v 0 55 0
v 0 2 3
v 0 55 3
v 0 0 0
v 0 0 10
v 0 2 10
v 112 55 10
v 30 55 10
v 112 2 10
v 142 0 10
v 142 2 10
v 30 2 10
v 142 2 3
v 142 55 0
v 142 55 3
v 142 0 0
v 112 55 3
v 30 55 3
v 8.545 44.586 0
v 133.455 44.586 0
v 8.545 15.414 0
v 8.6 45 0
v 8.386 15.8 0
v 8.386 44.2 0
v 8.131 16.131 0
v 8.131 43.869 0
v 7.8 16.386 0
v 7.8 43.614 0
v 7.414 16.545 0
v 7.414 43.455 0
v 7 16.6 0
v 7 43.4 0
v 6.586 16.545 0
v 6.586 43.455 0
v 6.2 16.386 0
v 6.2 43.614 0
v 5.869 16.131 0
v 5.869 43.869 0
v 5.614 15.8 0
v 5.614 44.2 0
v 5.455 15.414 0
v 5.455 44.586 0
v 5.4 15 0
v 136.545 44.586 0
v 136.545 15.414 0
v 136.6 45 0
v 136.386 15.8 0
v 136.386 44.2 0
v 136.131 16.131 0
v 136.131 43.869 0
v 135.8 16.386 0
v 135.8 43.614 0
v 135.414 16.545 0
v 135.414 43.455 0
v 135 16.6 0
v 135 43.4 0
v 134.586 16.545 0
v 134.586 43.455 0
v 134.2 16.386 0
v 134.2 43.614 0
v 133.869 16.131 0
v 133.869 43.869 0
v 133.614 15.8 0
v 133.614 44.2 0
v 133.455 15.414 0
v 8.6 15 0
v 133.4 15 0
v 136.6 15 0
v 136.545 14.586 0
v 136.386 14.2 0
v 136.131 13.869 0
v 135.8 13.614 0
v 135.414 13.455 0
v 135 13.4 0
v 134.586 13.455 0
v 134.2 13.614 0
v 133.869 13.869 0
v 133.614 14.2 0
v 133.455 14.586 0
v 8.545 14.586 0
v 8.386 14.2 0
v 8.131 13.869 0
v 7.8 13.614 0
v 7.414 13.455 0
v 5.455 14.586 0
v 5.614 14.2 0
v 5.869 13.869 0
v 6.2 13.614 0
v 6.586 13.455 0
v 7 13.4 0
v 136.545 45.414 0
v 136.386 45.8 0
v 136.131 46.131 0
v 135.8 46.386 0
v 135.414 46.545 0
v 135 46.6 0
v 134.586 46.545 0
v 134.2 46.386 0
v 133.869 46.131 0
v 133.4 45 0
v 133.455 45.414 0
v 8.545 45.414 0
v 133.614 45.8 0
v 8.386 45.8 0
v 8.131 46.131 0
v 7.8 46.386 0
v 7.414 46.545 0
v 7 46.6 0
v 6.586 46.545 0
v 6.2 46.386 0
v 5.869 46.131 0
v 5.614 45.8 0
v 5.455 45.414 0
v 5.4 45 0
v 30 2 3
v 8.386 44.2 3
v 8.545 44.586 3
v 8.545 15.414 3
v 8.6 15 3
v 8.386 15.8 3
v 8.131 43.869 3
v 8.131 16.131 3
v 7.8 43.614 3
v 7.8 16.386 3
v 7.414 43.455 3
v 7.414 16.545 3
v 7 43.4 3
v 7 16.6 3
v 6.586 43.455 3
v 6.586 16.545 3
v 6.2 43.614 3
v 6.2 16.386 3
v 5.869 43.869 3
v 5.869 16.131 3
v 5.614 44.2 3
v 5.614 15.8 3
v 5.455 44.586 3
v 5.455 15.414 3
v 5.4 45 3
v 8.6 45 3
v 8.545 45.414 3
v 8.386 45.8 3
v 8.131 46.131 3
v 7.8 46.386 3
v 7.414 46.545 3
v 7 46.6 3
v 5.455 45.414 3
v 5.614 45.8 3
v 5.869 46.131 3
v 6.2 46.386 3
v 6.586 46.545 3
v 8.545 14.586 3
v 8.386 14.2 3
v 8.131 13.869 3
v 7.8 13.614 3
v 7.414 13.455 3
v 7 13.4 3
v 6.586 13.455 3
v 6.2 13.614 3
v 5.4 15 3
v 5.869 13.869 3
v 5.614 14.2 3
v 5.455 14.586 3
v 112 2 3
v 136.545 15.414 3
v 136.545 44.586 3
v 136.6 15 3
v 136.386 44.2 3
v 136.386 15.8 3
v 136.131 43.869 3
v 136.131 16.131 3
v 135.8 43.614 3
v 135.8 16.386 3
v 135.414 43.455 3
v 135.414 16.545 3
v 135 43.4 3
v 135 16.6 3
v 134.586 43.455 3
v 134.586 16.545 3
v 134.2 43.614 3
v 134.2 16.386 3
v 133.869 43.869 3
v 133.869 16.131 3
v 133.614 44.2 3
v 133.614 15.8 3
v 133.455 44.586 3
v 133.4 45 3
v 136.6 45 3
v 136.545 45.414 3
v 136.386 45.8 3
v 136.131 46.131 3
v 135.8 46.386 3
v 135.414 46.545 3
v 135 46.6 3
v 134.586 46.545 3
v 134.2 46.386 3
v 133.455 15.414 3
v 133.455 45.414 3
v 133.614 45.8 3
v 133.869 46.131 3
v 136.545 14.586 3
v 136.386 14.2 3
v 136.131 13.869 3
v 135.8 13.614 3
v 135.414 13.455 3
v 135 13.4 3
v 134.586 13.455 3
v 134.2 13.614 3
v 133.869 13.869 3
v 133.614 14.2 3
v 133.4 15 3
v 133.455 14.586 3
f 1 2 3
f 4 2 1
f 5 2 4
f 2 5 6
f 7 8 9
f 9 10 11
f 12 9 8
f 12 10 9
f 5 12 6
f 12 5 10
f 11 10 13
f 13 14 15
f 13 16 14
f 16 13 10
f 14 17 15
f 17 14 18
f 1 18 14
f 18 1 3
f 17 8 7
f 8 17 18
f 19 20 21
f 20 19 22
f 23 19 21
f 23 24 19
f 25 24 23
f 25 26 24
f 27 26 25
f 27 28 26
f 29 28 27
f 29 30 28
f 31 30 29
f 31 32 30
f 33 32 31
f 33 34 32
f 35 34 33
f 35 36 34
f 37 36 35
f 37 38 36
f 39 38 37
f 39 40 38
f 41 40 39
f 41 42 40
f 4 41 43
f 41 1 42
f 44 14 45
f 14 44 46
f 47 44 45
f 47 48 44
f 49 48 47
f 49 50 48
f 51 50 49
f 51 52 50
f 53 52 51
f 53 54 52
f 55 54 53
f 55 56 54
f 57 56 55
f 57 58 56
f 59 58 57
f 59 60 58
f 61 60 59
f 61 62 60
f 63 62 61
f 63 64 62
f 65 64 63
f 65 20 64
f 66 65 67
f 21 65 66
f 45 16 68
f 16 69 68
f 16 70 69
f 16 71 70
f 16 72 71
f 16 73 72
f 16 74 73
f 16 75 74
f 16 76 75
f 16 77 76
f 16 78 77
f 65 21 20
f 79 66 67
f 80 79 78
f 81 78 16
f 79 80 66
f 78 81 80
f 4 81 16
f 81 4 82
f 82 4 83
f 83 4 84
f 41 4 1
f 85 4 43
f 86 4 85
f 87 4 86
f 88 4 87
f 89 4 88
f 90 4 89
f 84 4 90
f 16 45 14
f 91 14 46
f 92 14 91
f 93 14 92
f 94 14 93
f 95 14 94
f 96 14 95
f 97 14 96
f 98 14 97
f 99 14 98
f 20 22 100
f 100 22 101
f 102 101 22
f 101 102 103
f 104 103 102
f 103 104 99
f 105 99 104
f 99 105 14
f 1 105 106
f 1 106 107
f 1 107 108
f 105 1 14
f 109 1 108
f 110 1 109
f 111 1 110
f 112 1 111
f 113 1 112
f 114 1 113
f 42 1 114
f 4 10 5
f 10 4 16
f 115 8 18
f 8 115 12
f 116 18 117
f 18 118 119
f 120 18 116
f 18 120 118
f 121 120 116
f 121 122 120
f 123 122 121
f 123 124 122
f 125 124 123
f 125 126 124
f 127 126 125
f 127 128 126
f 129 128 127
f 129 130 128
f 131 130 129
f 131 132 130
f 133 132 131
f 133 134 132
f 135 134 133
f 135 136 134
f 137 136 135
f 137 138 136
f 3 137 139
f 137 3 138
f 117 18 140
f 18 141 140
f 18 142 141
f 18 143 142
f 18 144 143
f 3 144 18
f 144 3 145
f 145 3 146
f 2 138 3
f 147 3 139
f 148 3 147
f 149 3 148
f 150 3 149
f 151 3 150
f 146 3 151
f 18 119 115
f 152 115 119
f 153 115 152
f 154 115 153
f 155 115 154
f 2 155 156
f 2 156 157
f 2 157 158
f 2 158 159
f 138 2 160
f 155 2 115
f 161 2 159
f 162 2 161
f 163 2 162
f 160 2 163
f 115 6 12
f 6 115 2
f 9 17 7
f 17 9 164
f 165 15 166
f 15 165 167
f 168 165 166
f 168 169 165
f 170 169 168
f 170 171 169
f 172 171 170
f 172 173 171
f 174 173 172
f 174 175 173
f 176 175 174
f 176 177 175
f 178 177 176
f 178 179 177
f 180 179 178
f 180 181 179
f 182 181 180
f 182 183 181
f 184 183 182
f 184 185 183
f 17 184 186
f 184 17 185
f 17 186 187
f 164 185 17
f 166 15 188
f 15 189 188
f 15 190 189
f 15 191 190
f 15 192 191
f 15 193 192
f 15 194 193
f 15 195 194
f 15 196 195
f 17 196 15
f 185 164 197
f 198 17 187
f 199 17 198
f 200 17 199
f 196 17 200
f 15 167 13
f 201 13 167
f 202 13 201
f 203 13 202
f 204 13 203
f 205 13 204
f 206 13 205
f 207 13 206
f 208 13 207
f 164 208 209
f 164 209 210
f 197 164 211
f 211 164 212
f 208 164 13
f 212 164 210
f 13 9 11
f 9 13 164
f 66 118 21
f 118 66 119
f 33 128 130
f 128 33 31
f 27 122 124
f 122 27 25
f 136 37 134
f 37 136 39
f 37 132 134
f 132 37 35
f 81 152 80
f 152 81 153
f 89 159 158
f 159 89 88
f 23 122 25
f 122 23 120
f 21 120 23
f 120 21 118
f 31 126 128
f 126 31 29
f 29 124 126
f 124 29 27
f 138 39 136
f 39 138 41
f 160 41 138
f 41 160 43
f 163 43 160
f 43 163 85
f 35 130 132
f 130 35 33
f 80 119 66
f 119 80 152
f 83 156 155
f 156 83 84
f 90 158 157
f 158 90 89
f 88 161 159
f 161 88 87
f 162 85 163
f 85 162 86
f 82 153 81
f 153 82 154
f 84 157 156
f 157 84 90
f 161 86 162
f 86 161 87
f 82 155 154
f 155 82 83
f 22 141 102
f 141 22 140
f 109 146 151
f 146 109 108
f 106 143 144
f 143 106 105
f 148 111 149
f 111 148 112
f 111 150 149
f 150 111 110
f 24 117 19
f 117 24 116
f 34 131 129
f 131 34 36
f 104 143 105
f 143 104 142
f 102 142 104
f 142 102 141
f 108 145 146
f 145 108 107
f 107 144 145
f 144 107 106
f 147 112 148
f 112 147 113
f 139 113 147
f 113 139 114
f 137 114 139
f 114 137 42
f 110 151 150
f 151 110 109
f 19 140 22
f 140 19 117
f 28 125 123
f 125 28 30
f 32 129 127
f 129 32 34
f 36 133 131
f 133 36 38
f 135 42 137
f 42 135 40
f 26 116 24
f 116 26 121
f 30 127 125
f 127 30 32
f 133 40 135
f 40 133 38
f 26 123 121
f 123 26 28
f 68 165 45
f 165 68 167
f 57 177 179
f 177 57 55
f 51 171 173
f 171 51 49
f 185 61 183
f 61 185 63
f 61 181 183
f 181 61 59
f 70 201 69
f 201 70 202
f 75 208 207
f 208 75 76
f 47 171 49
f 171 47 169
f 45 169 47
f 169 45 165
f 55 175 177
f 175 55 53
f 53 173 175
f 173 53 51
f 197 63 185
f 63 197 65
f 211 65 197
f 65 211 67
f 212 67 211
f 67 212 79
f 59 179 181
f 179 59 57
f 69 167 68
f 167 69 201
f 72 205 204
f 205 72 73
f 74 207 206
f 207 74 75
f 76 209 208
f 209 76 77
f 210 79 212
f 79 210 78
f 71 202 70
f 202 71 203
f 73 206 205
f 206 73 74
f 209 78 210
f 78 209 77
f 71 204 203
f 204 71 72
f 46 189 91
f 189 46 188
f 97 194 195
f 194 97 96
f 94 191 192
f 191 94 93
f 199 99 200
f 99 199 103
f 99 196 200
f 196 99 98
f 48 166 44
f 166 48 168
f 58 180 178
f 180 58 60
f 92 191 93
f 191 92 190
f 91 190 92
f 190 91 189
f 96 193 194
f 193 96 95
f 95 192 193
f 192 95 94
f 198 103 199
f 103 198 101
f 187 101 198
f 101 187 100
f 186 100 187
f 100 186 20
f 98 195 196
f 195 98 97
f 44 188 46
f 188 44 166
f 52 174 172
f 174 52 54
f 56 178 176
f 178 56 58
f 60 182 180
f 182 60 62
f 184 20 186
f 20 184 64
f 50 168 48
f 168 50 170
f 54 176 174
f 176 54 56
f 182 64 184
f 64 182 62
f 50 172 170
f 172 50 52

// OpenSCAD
$fn=24;
difference(){
cube([142,55,10]);
translate([0,2,3])cube([30,55,15]);
translate([112,2,3])cube([30,55,15]);
translate([7,15,0])cylinder(d=3.2,h=20);
translate([7,45,0])cylinder(d=3.2,h=20);
translate([142-7,15,0])cylinder(d=3.2,h=20);
translate([142-7,45,0])cylinder(d=3.2,h=20);
}
